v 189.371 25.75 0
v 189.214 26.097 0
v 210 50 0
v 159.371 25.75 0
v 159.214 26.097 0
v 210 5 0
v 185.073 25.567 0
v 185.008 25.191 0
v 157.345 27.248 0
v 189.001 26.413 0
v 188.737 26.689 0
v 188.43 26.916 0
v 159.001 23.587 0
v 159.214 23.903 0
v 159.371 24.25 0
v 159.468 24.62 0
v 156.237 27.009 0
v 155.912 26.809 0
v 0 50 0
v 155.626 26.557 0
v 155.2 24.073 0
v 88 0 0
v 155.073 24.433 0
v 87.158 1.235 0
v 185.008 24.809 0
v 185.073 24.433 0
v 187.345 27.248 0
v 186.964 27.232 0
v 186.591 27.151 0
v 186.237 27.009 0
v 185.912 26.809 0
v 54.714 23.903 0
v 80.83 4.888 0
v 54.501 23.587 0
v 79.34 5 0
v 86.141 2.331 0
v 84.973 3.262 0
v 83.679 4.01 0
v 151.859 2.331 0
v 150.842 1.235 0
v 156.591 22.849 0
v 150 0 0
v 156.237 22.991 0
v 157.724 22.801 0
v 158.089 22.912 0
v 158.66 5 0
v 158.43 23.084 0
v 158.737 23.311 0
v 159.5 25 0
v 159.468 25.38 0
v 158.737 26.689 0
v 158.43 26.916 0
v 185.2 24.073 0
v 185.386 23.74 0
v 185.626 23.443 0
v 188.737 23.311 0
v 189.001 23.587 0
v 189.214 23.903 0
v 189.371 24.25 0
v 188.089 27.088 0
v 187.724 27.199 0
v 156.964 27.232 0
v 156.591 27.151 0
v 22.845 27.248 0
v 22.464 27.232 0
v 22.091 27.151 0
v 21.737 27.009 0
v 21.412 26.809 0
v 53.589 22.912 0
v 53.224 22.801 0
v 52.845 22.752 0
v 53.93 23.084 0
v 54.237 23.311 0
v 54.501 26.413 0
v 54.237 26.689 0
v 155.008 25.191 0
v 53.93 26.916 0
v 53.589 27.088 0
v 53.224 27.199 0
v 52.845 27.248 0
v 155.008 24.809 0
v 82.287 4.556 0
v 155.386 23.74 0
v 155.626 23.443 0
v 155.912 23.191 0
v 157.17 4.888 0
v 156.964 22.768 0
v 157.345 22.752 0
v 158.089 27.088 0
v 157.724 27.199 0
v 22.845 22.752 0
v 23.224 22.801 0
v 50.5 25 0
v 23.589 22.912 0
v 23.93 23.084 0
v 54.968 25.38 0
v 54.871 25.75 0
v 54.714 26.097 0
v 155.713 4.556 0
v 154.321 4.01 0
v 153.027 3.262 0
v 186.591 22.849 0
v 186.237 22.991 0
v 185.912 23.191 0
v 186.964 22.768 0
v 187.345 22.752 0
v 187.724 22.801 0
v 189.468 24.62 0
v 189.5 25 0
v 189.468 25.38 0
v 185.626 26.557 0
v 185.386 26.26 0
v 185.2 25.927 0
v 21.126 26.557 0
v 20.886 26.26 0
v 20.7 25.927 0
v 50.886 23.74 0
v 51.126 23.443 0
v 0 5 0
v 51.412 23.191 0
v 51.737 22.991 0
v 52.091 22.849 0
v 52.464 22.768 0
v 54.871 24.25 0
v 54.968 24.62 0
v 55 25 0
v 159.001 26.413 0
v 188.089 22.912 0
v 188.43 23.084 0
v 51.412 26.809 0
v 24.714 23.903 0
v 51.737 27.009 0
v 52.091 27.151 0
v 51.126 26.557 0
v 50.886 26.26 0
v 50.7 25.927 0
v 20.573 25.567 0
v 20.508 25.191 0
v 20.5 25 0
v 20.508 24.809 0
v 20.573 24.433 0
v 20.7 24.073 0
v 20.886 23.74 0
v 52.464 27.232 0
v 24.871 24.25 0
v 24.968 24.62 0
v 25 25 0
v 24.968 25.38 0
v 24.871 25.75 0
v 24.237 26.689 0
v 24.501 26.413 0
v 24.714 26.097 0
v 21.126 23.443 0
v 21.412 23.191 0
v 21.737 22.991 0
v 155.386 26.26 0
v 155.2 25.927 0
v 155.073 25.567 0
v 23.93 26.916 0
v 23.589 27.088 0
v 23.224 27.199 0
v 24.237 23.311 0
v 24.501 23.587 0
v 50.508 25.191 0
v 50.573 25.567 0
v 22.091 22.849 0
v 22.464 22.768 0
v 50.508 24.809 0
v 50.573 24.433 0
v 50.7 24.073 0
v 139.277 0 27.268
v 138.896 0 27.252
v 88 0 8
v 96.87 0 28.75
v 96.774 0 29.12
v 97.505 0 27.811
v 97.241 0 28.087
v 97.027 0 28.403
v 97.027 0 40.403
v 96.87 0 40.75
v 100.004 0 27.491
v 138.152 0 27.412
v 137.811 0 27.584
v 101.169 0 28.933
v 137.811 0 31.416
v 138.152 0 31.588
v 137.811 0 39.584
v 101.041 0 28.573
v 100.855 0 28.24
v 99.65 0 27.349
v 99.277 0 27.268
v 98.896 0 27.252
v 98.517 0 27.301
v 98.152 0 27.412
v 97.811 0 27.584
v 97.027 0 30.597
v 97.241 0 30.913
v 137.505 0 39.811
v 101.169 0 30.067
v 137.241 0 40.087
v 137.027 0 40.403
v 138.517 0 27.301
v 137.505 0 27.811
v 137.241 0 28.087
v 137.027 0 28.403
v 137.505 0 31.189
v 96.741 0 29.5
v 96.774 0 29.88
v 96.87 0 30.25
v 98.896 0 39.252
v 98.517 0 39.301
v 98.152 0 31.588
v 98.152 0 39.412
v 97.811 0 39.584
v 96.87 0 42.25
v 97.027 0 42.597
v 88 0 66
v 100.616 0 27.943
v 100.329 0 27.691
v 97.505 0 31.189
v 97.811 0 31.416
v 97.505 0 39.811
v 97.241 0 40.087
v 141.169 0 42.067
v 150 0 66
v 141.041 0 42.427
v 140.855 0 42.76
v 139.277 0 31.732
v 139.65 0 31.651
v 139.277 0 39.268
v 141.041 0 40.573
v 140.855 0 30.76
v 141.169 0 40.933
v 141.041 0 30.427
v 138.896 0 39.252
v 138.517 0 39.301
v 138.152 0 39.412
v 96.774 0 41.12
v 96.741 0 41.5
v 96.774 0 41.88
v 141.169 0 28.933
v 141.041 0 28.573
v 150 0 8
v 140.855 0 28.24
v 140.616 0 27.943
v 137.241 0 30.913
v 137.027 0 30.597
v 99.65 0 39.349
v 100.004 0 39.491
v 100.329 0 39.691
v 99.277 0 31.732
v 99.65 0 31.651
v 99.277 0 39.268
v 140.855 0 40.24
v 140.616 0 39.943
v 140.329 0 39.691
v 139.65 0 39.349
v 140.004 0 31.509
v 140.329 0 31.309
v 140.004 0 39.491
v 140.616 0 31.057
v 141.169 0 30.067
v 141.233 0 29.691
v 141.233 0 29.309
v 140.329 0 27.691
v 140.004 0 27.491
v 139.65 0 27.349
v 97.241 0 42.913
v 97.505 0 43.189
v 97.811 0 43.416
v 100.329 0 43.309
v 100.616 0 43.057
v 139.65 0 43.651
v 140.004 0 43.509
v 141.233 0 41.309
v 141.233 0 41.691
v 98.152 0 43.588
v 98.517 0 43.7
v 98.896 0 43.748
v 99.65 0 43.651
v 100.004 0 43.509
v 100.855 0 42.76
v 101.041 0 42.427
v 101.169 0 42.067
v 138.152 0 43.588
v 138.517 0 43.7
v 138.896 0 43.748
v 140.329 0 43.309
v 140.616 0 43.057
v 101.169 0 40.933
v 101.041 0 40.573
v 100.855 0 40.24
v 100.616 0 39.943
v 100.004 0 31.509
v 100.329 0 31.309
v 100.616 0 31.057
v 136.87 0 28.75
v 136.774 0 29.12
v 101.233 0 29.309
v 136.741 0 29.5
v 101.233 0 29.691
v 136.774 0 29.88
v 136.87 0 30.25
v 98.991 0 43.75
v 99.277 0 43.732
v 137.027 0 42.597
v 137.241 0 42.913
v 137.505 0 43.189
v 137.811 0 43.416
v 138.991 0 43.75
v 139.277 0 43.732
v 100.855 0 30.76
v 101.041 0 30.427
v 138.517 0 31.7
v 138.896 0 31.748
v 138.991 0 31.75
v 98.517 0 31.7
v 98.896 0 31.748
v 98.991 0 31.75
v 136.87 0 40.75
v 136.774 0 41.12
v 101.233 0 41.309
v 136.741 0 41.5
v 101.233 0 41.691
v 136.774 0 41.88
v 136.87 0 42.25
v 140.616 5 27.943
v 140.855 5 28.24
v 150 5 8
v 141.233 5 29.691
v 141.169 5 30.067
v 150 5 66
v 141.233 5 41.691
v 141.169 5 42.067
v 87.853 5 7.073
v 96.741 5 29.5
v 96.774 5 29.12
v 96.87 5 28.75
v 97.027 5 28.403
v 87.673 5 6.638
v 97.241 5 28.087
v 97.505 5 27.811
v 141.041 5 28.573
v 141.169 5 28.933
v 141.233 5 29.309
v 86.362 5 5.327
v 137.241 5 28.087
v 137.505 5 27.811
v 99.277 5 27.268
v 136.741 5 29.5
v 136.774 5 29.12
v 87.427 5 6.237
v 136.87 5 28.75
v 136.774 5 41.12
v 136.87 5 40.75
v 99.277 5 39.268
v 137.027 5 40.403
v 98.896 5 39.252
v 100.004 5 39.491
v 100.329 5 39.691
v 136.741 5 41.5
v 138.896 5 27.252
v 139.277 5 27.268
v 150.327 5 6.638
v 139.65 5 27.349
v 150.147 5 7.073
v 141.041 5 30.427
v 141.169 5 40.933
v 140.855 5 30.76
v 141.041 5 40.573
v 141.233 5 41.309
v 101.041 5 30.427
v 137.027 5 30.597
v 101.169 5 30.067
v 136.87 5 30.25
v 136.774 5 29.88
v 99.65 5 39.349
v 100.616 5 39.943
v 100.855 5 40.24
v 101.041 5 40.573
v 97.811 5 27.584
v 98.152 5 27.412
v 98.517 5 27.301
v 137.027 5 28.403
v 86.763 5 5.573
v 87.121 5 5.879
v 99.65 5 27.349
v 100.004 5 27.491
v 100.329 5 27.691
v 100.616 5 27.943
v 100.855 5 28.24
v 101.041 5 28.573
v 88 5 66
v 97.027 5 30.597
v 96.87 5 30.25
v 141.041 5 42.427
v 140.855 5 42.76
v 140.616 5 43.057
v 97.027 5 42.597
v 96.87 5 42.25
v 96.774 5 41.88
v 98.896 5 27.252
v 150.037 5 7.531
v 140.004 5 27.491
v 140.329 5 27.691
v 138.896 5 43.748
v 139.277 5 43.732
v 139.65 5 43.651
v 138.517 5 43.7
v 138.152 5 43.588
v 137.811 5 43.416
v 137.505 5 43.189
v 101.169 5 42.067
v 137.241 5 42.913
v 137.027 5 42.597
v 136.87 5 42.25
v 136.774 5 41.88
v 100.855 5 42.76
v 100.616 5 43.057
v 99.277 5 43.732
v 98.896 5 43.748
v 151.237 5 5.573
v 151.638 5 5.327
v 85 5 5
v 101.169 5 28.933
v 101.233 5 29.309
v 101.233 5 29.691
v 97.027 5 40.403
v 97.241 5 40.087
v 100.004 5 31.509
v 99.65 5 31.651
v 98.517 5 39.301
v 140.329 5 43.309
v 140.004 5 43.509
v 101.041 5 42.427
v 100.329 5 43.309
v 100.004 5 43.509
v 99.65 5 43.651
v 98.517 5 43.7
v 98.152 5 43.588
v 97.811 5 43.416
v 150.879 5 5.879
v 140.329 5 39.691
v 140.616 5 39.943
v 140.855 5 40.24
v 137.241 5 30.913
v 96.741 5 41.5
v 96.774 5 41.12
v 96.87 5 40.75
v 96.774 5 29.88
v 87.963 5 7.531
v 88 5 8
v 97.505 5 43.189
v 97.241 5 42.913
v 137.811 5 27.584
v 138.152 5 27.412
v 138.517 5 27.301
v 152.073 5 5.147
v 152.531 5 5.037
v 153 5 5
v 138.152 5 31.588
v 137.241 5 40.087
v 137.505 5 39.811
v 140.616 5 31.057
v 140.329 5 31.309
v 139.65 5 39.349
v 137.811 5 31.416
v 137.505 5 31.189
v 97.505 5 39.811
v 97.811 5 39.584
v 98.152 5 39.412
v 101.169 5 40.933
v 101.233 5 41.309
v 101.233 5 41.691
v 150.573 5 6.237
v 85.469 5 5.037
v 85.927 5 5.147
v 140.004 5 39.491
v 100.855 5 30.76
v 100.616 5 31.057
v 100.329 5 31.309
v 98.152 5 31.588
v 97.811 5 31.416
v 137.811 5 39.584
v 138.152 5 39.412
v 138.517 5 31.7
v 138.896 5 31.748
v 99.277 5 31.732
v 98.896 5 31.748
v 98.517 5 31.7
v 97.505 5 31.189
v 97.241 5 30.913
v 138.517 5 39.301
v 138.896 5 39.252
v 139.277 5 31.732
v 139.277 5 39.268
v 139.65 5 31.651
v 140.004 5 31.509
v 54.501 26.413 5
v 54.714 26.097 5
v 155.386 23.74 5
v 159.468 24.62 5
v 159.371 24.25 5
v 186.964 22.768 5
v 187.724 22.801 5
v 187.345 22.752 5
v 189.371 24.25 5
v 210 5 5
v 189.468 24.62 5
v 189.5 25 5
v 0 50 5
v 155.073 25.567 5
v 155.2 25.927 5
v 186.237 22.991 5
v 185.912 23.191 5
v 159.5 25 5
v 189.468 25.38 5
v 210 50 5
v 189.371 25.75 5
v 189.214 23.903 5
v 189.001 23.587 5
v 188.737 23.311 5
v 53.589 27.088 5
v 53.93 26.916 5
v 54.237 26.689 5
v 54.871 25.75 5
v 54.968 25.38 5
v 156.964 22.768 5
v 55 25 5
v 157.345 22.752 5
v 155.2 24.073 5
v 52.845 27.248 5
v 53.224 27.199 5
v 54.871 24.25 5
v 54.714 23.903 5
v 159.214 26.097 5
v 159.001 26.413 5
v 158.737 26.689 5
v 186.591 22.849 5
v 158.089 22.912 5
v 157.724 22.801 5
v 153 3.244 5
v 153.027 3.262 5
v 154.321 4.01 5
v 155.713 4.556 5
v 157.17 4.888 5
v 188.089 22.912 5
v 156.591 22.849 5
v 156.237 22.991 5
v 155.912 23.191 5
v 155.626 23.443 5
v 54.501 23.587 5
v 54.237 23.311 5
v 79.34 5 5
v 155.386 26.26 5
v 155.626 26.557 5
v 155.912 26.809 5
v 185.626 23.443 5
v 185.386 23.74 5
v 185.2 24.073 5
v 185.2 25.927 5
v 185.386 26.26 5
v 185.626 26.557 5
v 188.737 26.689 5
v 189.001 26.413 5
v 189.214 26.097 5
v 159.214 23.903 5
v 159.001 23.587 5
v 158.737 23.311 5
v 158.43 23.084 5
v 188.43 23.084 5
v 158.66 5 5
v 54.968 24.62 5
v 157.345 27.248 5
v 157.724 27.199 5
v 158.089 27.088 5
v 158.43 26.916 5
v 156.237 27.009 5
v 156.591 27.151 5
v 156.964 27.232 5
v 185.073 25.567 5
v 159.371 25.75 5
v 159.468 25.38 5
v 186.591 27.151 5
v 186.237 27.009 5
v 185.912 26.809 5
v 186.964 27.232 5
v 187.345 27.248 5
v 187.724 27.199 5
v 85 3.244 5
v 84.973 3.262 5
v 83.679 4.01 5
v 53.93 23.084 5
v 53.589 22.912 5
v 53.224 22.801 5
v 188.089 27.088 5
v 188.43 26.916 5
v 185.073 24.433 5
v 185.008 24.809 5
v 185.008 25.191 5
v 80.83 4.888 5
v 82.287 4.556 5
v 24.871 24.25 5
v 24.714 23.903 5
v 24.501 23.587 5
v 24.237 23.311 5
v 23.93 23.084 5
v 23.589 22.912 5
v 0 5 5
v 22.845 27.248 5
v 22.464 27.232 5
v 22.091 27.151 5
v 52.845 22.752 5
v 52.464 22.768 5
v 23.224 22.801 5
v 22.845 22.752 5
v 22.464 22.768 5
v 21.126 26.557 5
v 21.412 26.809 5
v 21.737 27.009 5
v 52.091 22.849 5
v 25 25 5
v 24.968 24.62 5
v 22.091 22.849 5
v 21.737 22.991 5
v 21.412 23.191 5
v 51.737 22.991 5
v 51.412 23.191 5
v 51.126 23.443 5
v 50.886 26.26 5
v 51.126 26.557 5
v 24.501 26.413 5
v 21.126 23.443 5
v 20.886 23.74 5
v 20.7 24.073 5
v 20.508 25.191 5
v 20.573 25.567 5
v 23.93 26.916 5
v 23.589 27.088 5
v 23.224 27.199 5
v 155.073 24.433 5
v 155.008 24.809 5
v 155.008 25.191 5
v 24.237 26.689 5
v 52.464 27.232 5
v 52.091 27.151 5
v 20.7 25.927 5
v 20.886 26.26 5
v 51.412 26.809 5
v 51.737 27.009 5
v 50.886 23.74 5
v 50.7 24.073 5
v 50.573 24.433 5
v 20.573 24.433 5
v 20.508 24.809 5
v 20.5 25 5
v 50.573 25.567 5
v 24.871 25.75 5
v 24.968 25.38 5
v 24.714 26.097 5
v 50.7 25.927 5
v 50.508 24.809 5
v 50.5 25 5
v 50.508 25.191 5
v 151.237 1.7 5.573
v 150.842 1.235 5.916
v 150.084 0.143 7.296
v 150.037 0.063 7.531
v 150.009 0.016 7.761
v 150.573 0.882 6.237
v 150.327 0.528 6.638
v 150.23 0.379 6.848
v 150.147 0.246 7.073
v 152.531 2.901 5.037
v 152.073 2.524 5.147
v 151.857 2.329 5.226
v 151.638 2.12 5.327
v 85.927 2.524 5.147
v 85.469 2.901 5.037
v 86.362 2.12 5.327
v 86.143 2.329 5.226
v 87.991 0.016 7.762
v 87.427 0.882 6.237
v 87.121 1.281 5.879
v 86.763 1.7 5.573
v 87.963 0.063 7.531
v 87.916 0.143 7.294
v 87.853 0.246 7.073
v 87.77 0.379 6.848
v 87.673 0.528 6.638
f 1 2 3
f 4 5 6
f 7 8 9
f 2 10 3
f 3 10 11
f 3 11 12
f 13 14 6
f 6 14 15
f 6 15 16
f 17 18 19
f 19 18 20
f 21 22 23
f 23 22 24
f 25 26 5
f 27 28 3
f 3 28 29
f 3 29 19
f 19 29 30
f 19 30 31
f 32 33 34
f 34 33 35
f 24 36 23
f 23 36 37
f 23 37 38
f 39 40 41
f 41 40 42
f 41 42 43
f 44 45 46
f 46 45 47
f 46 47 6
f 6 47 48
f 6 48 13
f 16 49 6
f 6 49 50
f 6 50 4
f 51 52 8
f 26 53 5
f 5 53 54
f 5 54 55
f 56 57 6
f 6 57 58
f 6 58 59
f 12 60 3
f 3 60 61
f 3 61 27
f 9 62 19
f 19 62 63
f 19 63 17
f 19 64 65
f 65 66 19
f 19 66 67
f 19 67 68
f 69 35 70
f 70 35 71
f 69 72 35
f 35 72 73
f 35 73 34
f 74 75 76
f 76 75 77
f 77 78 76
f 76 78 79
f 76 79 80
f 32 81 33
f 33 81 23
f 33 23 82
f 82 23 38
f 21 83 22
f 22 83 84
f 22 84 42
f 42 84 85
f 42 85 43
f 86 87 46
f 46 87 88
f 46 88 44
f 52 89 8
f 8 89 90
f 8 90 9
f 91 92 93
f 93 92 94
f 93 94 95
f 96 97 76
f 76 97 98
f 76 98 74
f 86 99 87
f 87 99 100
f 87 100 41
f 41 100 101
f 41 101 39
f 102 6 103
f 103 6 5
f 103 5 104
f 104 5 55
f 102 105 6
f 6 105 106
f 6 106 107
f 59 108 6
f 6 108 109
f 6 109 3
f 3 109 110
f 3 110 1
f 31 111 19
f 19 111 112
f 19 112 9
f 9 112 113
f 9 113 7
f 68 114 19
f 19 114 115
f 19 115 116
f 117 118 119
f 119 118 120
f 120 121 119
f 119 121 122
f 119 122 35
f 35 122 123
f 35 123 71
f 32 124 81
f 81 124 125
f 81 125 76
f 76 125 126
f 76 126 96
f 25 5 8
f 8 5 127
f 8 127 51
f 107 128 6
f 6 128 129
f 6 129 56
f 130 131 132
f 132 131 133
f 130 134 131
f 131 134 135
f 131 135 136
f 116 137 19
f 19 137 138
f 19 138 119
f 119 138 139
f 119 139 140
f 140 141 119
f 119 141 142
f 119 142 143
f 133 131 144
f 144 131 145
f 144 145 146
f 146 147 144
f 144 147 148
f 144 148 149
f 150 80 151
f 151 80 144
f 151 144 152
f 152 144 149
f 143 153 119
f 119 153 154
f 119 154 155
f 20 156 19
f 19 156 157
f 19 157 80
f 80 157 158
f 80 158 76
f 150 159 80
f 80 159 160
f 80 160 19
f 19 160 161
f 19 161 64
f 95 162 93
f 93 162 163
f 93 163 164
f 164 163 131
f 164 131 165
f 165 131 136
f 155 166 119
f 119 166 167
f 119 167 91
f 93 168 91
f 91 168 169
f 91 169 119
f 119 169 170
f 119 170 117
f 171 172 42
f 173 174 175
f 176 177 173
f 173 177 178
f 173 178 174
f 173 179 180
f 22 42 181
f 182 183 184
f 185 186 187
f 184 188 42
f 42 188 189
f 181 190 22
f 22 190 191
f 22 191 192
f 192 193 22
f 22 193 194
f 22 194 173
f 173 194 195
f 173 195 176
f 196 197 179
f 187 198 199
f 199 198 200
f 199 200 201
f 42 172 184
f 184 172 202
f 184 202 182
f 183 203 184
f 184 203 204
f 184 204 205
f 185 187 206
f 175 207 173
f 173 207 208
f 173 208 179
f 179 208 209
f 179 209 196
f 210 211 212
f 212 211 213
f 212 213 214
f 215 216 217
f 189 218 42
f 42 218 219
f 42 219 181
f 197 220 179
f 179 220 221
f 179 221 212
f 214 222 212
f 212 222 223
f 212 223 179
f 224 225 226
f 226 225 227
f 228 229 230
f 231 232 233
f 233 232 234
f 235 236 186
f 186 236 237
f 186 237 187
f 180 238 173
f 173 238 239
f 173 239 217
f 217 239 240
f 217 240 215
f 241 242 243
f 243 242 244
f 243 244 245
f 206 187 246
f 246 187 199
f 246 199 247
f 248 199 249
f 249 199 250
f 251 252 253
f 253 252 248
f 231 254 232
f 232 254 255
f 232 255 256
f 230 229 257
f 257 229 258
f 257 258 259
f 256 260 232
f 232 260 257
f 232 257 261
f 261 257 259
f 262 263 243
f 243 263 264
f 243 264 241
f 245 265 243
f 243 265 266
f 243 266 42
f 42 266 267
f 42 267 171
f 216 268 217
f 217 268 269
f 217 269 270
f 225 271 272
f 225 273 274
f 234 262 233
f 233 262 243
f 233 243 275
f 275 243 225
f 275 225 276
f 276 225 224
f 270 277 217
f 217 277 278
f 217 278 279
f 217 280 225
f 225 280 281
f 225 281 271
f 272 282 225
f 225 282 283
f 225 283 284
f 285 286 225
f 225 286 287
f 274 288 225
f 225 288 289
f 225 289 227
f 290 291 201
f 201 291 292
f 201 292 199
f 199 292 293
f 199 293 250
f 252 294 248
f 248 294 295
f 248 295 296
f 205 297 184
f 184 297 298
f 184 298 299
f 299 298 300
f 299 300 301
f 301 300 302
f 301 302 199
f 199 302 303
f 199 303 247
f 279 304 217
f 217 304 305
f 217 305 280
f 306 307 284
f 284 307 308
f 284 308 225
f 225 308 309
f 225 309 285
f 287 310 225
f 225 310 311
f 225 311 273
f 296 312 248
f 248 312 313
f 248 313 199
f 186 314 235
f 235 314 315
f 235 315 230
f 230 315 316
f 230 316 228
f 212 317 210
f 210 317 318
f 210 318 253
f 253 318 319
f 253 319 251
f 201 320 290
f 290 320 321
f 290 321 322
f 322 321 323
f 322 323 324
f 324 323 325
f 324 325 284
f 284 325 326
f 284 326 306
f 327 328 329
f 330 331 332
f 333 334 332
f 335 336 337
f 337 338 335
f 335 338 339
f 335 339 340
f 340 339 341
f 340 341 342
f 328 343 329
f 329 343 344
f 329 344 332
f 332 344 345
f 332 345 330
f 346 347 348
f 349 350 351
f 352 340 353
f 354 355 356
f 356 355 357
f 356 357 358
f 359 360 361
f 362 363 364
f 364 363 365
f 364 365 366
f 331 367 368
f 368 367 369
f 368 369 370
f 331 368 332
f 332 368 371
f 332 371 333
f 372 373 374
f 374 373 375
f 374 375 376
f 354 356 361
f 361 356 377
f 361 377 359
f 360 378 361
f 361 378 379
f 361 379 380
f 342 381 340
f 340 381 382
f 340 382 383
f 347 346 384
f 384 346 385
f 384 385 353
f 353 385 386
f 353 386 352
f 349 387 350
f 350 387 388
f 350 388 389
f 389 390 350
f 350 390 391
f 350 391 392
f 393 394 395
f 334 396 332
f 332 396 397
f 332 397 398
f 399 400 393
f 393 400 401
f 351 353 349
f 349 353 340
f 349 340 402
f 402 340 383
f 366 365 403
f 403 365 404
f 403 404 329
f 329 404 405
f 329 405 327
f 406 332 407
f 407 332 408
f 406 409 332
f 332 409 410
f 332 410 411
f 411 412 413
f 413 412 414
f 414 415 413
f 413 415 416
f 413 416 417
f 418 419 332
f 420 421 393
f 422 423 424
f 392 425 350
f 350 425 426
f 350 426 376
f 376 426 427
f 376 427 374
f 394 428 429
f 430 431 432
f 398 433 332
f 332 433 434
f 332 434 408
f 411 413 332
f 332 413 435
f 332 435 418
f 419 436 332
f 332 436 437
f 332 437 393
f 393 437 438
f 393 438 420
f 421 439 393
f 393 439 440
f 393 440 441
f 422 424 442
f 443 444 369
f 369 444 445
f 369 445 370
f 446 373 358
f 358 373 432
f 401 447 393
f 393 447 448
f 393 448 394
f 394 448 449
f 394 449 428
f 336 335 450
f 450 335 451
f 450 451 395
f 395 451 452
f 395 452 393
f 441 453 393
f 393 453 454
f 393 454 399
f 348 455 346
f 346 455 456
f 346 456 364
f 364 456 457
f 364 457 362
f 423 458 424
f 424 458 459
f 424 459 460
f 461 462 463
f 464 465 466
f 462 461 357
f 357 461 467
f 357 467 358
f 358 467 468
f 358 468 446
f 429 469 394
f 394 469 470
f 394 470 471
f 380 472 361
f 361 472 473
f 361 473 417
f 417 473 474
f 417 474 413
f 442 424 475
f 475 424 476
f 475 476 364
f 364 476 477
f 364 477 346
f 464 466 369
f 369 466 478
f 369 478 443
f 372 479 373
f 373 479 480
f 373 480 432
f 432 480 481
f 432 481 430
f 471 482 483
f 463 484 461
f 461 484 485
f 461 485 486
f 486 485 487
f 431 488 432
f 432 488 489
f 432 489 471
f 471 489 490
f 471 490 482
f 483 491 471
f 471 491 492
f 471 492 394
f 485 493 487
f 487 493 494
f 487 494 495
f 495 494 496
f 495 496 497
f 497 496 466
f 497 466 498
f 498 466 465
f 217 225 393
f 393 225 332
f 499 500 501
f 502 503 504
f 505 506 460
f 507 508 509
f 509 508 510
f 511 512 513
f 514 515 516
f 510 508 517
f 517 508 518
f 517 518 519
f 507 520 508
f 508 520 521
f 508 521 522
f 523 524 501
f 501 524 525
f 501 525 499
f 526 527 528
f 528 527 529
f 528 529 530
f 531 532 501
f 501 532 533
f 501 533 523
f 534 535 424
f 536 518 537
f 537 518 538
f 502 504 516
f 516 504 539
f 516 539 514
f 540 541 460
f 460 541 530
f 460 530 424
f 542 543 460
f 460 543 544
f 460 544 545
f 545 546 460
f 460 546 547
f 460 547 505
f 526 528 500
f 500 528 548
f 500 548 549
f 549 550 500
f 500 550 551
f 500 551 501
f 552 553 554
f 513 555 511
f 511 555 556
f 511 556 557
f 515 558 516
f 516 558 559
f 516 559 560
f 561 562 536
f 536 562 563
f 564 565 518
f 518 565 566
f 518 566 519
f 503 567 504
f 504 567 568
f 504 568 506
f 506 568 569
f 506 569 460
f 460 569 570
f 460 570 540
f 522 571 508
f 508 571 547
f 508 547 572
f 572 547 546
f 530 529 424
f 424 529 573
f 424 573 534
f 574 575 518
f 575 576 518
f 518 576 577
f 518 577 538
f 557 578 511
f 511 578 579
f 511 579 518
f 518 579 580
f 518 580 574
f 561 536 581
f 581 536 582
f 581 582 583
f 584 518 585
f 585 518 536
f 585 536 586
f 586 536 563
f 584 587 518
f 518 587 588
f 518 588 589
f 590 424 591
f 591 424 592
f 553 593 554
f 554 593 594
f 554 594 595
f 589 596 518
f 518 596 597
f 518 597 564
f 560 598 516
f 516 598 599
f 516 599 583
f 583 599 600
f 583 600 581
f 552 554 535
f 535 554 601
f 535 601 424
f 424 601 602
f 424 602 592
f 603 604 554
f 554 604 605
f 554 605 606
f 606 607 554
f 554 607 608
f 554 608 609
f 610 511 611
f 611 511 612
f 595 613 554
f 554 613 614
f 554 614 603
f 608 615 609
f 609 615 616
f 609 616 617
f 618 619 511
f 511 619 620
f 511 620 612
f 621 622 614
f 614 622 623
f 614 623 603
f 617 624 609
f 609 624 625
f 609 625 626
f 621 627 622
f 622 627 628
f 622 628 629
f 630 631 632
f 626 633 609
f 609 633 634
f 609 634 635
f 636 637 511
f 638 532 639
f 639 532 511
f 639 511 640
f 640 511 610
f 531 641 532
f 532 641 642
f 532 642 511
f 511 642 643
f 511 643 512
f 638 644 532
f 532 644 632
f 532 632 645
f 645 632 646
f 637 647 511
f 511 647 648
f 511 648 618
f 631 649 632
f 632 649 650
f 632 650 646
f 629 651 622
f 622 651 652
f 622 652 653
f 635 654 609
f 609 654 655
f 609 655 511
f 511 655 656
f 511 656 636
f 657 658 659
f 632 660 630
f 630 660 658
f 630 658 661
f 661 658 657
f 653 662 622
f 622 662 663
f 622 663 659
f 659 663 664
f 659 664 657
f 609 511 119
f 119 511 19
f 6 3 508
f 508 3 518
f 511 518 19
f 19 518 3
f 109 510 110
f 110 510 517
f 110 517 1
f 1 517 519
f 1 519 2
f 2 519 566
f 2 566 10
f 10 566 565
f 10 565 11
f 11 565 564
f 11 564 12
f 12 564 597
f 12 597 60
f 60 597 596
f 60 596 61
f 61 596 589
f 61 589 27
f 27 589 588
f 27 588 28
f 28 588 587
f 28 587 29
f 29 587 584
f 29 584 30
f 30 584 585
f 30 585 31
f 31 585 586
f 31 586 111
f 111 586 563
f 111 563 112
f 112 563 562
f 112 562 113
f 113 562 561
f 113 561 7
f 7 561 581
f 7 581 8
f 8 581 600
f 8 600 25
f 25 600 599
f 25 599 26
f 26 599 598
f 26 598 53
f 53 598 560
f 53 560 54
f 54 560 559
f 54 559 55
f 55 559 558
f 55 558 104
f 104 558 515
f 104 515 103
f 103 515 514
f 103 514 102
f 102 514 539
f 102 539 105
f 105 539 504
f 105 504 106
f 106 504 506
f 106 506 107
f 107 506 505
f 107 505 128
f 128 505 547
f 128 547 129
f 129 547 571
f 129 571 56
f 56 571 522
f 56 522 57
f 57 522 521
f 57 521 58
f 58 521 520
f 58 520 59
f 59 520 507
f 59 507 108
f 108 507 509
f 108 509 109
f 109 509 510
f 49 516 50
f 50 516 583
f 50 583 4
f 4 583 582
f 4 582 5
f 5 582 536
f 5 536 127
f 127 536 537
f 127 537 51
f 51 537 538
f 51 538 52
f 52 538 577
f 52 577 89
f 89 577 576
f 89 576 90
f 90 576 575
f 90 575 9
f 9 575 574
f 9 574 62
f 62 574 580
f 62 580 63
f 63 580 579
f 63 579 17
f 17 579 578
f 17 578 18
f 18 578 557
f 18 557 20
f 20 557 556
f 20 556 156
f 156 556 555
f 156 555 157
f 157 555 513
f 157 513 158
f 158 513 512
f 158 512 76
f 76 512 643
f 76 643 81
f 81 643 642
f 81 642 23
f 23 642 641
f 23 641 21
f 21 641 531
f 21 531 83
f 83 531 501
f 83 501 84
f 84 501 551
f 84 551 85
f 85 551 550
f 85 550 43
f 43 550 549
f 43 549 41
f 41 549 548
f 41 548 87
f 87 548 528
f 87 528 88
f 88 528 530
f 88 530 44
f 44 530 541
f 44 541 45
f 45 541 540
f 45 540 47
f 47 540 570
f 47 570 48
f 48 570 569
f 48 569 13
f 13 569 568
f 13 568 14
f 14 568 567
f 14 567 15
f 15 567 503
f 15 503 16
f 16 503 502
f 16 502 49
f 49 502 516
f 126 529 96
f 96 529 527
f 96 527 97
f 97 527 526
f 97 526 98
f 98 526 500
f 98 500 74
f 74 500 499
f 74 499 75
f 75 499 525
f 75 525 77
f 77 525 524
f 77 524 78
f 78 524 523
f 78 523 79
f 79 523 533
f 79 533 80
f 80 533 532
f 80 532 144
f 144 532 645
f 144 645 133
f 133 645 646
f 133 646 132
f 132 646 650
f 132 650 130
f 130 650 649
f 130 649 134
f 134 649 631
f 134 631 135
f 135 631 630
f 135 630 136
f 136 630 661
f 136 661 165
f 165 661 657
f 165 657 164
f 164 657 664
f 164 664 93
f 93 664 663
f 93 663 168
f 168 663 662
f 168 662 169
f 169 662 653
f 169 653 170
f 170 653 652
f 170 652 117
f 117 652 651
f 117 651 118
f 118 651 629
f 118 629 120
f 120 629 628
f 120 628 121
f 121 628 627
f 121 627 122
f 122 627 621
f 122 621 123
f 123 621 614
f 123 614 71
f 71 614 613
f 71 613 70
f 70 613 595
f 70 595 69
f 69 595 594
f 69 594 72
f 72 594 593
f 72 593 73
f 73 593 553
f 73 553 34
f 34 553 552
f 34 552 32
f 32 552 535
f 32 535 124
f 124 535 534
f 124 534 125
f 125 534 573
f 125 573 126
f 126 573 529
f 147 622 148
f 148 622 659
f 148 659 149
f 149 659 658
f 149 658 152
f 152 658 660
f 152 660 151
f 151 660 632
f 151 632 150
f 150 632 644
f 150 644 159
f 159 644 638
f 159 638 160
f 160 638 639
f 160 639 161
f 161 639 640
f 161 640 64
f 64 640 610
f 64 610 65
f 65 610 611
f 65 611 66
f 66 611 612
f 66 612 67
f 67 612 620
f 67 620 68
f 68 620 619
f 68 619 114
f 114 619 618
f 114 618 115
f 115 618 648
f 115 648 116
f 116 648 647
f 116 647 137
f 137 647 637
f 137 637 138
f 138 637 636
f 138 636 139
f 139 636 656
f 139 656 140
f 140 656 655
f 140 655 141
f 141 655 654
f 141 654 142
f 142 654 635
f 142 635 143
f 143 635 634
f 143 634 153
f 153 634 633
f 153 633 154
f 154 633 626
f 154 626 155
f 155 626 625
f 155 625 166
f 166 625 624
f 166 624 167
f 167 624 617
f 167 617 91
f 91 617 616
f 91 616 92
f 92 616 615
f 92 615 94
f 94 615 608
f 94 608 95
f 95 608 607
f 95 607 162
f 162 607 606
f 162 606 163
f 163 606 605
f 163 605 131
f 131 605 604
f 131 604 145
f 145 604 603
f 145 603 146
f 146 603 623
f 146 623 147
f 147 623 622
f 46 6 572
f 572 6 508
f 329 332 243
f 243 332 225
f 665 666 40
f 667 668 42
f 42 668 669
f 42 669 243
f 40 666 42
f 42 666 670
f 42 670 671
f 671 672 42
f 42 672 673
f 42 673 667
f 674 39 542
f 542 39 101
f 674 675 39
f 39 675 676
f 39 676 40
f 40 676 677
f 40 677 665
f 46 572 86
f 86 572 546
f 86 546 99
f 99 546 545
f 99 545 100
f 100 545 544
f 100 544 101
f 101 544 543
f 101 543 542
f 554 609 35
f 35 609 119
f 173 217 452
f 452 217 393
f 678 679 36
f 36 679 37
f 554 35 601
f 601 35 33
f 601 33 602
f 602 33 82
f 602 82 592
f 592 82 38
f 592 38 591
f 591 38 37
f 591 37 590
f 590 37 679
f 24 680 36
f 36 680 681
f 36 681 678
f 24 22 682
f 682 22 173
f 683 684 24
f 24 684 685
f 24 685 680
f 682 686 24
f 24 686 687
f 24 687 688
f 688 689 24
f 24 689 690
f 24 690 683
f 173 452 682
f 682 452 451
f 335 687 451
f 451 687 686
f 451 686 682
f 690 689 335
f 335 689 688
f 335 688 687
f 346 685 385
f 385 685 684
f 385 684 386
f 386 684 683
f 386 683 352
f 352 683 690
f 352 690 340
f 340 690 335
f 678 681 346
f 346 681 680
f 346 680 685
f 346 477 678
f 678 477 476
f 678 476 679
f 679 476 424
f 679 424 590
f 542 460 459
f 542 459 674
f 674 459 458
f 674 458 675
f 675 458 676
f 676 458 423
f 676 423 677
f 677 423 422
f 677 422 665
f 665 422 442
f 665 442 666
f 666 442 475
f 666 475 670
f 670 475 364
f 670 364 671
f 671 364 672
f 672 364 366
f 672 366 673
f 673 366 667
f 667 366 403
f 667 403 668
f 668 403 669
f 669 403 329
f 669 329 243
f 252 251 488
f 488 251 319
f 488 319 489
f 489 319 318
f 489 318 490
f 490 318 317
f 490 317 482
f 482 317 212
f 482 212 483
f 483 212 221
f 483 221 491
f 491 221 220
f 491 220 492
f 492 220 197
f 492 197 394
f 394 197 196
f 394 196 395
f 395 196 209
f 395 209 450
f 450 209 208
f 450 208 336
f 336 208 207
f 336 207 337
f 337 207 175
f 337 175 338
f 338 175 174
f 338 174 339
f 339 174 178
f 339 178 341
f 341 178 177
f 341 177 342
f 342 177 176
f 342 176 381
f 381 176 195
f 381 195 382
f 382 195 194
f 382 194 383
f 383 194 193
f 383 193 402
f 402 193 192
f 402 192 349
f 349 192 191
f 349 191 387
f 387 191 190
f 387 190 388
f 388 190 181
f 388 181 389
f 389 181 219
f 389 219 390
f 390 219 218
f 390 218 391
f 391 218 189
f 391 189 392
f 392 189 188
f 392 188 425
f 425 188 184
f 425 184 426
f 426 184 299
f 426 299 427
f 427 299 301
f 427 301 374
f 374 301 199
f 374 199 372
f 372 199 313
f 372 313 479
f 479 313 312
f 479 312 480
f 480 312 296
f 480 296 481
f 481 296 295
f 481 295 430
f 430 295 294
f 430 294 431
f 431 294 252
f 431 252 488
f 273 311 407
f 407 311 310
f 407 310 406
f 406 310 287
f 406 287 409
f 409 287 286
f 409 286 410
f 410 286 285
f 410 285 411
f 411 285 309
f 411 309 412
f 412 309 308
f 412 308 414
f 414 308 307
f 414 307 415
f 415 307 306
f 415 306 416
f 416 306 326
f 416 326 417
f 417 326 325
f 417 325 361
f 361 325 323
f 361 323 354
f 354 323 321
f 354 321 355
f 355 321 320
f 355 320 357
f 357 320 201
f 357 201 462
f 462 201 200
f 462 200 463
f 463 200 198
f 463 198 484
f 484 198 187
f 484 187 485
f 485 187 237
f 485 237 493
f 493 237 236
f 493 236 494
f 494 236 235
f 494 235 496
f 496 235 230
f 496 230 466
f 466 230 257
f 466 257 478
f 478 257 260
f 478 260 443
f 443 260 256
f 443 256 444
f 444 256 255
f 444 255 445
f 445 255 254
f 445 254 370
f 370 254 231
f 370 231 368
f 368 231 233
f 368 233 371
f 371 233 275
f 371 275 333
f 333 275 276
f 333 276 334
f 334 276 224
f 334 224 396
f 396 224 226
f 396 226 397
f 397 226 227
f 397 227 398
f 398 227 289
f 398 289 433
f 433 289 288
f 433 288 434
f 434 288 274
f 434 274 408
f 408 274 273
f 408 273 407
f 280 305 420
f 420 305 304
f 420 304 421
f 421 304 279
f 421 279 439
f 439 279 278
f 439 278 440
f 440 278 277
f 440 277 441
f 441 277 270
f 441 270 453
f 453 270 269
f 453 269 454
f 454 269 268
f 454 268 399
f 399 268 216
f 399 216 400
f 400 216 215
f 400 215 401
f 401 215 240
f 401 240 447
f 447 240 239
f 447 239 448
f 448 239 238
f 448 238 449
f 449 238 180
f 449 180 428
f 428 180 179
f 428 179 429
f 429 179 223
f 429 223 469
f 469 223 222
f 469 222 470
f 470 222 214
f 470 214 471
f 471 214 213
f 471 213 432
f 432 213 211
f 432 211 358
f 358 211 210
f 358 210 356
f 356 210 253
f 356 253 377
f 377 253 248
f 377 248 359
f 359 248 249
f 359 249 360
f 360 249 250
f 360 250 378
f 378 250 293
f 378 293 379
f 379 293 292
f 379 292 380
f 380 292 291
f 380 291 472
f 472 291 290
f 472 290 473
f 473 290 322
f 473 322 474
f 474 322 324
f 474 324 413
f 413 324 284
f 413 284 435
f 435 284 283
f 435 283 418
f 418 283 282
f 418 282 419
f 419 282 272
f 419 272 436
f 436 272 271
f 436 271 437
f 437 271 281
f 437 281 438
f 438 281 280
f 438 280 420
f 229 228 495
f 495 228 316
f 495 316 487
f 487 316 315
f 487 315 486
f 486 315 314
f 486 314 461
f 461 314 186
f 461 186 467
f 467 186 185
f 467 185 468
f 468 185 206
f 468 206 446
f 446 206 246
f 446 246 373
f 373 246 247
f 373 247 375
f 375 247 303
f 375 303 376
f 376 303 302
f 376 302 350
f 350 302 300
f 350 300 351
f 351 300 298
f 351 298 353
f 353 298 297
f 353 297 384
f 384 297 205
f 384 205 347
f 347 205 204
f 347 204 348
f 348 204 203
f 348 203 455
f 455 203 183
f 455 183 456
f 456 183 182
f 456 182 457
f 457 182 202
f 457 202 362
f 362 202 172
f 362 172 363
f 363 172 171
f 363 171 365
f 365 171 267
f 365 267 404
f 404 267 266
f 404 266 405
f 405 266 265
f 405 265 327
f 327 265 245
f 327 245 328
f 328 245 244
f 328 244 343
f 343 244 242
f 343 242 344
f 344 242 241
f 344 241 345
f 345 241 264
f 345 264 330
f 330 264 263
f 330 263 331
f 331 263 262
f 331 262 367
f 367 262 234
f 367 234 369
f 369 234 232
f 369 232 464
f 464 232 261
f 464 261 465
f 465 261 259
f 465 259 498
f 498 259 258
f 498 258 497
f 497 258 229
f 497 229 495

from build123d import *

# Parameters (mm, degrees)
SKETCH_1_W          = 210
SKETCH_1_H          = 50
EXTRUDE_1_DEPTH     = 5
SKETCH_3_R          = 2.25
CUT_EXTRUDE_1_DEPTH = 5
SKETCH_4_W          = 210
SKETCH_4_H          = 5
EXTRUDE_2_DEPTH     = 61
CUT_EXTRUDE_2_REACH = 227.734
SKETCH_6_W          = 60
SKETCH_6_H          = 5
FILLET_1_R          = 10
CUT_EXTRUDE_3_REACH = 227.734
SKETCH_7_W          = 88
SKETCH_7_H          = 5
FILLET_2_R          = 10
FILLET_6_R          = 3
SKETCH_11_R         = 2.25
CUT_EXTRUDE_4_DEPTH = 225.67977212


with BuildPart() as part:
    # 草图1 → 凸台-拉伸1 (new body)
    with BuildSketch(Plane.XY):
        with Locations((105, 25)):
            Rectangle(SKETCH_1_W, SKETCH_1_H)
    extrude(amount=EXTRUDE_1_DEPTH)

    # 草图3 → 切除-拉伸1 (cut)
    with BuildSketch(Plane.XY.offset(5)):
        with Locations((157.25, 25)):
            Circle(SKETCH_3_R)
        with Locations((187.25, 25)):
            Circle(SKETCH_3_R)
        with Locations(Location((22.75, 25, 0), (0, 0, 180))):
            Circle(SKETCH_3_R)
        with Locations(Location((52.75, 25, 0), (0, 0, 180))):
            Circle(SKETCH_3_R)
    extrude(amount=-CUT_EXTRUDE_1_DEPTH, mode=Mode.SUBTRACT)

    # 草图4 → 凸台-拉伸2 (add)
    with BuildSketch(Plane.XY.offset(5)):
        with Locations((105, 2.5)):
            Rectangle(SKETCH_4_W, SKETCH_4_H)
    extrude(amount=EXTRUDE_2_DEPTH)

    # 草图6 → 切除-拉伸2 (cut, up to next)
    with BuildSketch(Plane.XY.offset(66), mode=Mode.PRIVATE) as cut_extrude_2_sk1:
        with Locations((180, 2.5)):
            Rectangle(SKETCH_6_W, SKETCH_6_H)
    cut_extrude_2_tool1 = extrude(cut_extrude_2_sk1.sketch, amount=-CUT_EXTRUDE_2_REACH, mode=Mode.PRIVATE) & part.part
    add(cut_extrude_2_tool1.solids().sort_by_distance((180, 2.5, 66))[0], mode=Mode.SUBTRACT)

    # 圆角1
    # the kernel refuses this fillet: 10 mm, written as the material it adds along each edge
    with BuildSketch(Plane(origin=(150, 5, 0), x_dir=(0, -1, 0), z_dir=(0, 0, 1))) as fillet_1_piece_1:
        with BuildLine():
            CenterArc((10, 8.660254038), FILLET_1_R, 180, 60)
            Line((0, 8.660254038), (0, 0))
            Line((0, 0), (5, 0))
        make_face()
    extrude(amount=5)

    # 草图7 → 切除-拉伸3 (cut, up to next)
    with BuildSketch(Plane.XY.offset(66), mode=Mode.PRIVATE) as cut_extrude_3_sk1:
        with Locations((44, 2.5)):
            Rectangle(SKETCH_7_W, SKETCH_7_H)
    cut_extrude_3_tool1 = extrude(cut_extrude_3_sk1.sketch, amount=-CUT_EXTRUDE_3_REACH, mode=Mode.PRIVATE) & part.part
    add(cut_extrude_3_tool1.solids().sort_by_distance((44, 2.5, 66))[0], mode=Mode.SUBTRACT)

    # 圆角2
    # the kernel refuses this fillet: 10 mm, written as the material it adds along each edge
    with BuildSketch(Plane(origin=(88, 5, 0), x_dir=(0, -1, 0), z_dir=(0, 0, 1))) as fillet_2_piece_1:
        with BuildLine():
            CenterArc((10, -8.660254038), FILLET_2_R, 120, 60)
            Line((0, -8.660254038), (0, 0))
            Line((0, 0), (5, 0))
        make_face()
    extrude(amount=5)

    # 圆角6
    # the kernel refuses this fillet: 3 mm, written as the material it adds along each edge
    with BuildSketch(Plane(origin=(150, 5, 5), x_dir=(1, 0, 0), z_dir=(0, -1, 0))) as fillet_6_piece_1_section:
        with BuildLine():
            CenterArc((FILLET_6_R, FILLET_6_R), FILLET_6_R, 180, 90)
            Line((0, FILLET_6_R), (0, 0))
            Line((0, 0), (FILLET_6_R, 0))
        make_face()
    fillet_6_piece_1 = extrude(amount=5, mode=Mode.PRIVATE)
    fillet_6_piece_1 = fillet_6_piece_1 - Plane(origin=(158.660254038, -5, 5.756133445), x_dir=(0, -1, 0), z_dir=(0, 0, -1)) * Cylinder(10, 22, mode=Mode.PRIVATE)
    add(fillet_6_piece_1)
    with BuildSketch(Plane(origin=(88, 5, 5), x_dir=(-1, 0, 0), z_dir=(0, -1, 0))) as fillet_6_piece_2_section:
        with BuildLine():
            CenterArc((FILLET_6_R, -FILLET_6_R), FILLET_6_R, 90, 90)
            Line((0, -FILLET_6_R), (0, 0))
            Line((0, 0), (FILLET_6_R, 0))
        make_face()
    fillet_6_piece_2 = extrude(amount=5, mode=Mode.PRIVATE)
    fillet_6_piece_2 = fillet_6_piece_2 - Plane(origin=(79.339745962, -5, 5.756136784), x_dir=(0, -1, 0), z_dir=(0, 0, -1)) * Cylinder(10, 22, mode=Mode.PRIVATE)
    add(fillet_6_piece_2)

    # 草图11 → 切除-拉伸4 (cut, through all)
    with BuildSketch(Plane(origin=(0, 5, 0), x_dir=(1, 0, 0), z_dir=(0, 1, 0))):
        with Locations(Location((98.991167509, -29.5, 0), (0, 0, 180))):
            Circle(SKETCH_11_R)
        with Locations(Location((138.991167509, -29.5, 0), (0, 0, 180))):
            Circle(SKETCH_11_R)
        with Locations(Location((98.991167509, -41.5, 0), (0, 0, 180))):
            Circle(SKETCH_11_R)
        with Locations(Location((138.991167509, -41.5, 0), (0, 0, 180))):
            Circle(SKETCH_11_R)
    extrude(amount=-CUT_EXTRUDE_4_DEPTH, mode=Mode.SUBTRACT)


solid = part.part
